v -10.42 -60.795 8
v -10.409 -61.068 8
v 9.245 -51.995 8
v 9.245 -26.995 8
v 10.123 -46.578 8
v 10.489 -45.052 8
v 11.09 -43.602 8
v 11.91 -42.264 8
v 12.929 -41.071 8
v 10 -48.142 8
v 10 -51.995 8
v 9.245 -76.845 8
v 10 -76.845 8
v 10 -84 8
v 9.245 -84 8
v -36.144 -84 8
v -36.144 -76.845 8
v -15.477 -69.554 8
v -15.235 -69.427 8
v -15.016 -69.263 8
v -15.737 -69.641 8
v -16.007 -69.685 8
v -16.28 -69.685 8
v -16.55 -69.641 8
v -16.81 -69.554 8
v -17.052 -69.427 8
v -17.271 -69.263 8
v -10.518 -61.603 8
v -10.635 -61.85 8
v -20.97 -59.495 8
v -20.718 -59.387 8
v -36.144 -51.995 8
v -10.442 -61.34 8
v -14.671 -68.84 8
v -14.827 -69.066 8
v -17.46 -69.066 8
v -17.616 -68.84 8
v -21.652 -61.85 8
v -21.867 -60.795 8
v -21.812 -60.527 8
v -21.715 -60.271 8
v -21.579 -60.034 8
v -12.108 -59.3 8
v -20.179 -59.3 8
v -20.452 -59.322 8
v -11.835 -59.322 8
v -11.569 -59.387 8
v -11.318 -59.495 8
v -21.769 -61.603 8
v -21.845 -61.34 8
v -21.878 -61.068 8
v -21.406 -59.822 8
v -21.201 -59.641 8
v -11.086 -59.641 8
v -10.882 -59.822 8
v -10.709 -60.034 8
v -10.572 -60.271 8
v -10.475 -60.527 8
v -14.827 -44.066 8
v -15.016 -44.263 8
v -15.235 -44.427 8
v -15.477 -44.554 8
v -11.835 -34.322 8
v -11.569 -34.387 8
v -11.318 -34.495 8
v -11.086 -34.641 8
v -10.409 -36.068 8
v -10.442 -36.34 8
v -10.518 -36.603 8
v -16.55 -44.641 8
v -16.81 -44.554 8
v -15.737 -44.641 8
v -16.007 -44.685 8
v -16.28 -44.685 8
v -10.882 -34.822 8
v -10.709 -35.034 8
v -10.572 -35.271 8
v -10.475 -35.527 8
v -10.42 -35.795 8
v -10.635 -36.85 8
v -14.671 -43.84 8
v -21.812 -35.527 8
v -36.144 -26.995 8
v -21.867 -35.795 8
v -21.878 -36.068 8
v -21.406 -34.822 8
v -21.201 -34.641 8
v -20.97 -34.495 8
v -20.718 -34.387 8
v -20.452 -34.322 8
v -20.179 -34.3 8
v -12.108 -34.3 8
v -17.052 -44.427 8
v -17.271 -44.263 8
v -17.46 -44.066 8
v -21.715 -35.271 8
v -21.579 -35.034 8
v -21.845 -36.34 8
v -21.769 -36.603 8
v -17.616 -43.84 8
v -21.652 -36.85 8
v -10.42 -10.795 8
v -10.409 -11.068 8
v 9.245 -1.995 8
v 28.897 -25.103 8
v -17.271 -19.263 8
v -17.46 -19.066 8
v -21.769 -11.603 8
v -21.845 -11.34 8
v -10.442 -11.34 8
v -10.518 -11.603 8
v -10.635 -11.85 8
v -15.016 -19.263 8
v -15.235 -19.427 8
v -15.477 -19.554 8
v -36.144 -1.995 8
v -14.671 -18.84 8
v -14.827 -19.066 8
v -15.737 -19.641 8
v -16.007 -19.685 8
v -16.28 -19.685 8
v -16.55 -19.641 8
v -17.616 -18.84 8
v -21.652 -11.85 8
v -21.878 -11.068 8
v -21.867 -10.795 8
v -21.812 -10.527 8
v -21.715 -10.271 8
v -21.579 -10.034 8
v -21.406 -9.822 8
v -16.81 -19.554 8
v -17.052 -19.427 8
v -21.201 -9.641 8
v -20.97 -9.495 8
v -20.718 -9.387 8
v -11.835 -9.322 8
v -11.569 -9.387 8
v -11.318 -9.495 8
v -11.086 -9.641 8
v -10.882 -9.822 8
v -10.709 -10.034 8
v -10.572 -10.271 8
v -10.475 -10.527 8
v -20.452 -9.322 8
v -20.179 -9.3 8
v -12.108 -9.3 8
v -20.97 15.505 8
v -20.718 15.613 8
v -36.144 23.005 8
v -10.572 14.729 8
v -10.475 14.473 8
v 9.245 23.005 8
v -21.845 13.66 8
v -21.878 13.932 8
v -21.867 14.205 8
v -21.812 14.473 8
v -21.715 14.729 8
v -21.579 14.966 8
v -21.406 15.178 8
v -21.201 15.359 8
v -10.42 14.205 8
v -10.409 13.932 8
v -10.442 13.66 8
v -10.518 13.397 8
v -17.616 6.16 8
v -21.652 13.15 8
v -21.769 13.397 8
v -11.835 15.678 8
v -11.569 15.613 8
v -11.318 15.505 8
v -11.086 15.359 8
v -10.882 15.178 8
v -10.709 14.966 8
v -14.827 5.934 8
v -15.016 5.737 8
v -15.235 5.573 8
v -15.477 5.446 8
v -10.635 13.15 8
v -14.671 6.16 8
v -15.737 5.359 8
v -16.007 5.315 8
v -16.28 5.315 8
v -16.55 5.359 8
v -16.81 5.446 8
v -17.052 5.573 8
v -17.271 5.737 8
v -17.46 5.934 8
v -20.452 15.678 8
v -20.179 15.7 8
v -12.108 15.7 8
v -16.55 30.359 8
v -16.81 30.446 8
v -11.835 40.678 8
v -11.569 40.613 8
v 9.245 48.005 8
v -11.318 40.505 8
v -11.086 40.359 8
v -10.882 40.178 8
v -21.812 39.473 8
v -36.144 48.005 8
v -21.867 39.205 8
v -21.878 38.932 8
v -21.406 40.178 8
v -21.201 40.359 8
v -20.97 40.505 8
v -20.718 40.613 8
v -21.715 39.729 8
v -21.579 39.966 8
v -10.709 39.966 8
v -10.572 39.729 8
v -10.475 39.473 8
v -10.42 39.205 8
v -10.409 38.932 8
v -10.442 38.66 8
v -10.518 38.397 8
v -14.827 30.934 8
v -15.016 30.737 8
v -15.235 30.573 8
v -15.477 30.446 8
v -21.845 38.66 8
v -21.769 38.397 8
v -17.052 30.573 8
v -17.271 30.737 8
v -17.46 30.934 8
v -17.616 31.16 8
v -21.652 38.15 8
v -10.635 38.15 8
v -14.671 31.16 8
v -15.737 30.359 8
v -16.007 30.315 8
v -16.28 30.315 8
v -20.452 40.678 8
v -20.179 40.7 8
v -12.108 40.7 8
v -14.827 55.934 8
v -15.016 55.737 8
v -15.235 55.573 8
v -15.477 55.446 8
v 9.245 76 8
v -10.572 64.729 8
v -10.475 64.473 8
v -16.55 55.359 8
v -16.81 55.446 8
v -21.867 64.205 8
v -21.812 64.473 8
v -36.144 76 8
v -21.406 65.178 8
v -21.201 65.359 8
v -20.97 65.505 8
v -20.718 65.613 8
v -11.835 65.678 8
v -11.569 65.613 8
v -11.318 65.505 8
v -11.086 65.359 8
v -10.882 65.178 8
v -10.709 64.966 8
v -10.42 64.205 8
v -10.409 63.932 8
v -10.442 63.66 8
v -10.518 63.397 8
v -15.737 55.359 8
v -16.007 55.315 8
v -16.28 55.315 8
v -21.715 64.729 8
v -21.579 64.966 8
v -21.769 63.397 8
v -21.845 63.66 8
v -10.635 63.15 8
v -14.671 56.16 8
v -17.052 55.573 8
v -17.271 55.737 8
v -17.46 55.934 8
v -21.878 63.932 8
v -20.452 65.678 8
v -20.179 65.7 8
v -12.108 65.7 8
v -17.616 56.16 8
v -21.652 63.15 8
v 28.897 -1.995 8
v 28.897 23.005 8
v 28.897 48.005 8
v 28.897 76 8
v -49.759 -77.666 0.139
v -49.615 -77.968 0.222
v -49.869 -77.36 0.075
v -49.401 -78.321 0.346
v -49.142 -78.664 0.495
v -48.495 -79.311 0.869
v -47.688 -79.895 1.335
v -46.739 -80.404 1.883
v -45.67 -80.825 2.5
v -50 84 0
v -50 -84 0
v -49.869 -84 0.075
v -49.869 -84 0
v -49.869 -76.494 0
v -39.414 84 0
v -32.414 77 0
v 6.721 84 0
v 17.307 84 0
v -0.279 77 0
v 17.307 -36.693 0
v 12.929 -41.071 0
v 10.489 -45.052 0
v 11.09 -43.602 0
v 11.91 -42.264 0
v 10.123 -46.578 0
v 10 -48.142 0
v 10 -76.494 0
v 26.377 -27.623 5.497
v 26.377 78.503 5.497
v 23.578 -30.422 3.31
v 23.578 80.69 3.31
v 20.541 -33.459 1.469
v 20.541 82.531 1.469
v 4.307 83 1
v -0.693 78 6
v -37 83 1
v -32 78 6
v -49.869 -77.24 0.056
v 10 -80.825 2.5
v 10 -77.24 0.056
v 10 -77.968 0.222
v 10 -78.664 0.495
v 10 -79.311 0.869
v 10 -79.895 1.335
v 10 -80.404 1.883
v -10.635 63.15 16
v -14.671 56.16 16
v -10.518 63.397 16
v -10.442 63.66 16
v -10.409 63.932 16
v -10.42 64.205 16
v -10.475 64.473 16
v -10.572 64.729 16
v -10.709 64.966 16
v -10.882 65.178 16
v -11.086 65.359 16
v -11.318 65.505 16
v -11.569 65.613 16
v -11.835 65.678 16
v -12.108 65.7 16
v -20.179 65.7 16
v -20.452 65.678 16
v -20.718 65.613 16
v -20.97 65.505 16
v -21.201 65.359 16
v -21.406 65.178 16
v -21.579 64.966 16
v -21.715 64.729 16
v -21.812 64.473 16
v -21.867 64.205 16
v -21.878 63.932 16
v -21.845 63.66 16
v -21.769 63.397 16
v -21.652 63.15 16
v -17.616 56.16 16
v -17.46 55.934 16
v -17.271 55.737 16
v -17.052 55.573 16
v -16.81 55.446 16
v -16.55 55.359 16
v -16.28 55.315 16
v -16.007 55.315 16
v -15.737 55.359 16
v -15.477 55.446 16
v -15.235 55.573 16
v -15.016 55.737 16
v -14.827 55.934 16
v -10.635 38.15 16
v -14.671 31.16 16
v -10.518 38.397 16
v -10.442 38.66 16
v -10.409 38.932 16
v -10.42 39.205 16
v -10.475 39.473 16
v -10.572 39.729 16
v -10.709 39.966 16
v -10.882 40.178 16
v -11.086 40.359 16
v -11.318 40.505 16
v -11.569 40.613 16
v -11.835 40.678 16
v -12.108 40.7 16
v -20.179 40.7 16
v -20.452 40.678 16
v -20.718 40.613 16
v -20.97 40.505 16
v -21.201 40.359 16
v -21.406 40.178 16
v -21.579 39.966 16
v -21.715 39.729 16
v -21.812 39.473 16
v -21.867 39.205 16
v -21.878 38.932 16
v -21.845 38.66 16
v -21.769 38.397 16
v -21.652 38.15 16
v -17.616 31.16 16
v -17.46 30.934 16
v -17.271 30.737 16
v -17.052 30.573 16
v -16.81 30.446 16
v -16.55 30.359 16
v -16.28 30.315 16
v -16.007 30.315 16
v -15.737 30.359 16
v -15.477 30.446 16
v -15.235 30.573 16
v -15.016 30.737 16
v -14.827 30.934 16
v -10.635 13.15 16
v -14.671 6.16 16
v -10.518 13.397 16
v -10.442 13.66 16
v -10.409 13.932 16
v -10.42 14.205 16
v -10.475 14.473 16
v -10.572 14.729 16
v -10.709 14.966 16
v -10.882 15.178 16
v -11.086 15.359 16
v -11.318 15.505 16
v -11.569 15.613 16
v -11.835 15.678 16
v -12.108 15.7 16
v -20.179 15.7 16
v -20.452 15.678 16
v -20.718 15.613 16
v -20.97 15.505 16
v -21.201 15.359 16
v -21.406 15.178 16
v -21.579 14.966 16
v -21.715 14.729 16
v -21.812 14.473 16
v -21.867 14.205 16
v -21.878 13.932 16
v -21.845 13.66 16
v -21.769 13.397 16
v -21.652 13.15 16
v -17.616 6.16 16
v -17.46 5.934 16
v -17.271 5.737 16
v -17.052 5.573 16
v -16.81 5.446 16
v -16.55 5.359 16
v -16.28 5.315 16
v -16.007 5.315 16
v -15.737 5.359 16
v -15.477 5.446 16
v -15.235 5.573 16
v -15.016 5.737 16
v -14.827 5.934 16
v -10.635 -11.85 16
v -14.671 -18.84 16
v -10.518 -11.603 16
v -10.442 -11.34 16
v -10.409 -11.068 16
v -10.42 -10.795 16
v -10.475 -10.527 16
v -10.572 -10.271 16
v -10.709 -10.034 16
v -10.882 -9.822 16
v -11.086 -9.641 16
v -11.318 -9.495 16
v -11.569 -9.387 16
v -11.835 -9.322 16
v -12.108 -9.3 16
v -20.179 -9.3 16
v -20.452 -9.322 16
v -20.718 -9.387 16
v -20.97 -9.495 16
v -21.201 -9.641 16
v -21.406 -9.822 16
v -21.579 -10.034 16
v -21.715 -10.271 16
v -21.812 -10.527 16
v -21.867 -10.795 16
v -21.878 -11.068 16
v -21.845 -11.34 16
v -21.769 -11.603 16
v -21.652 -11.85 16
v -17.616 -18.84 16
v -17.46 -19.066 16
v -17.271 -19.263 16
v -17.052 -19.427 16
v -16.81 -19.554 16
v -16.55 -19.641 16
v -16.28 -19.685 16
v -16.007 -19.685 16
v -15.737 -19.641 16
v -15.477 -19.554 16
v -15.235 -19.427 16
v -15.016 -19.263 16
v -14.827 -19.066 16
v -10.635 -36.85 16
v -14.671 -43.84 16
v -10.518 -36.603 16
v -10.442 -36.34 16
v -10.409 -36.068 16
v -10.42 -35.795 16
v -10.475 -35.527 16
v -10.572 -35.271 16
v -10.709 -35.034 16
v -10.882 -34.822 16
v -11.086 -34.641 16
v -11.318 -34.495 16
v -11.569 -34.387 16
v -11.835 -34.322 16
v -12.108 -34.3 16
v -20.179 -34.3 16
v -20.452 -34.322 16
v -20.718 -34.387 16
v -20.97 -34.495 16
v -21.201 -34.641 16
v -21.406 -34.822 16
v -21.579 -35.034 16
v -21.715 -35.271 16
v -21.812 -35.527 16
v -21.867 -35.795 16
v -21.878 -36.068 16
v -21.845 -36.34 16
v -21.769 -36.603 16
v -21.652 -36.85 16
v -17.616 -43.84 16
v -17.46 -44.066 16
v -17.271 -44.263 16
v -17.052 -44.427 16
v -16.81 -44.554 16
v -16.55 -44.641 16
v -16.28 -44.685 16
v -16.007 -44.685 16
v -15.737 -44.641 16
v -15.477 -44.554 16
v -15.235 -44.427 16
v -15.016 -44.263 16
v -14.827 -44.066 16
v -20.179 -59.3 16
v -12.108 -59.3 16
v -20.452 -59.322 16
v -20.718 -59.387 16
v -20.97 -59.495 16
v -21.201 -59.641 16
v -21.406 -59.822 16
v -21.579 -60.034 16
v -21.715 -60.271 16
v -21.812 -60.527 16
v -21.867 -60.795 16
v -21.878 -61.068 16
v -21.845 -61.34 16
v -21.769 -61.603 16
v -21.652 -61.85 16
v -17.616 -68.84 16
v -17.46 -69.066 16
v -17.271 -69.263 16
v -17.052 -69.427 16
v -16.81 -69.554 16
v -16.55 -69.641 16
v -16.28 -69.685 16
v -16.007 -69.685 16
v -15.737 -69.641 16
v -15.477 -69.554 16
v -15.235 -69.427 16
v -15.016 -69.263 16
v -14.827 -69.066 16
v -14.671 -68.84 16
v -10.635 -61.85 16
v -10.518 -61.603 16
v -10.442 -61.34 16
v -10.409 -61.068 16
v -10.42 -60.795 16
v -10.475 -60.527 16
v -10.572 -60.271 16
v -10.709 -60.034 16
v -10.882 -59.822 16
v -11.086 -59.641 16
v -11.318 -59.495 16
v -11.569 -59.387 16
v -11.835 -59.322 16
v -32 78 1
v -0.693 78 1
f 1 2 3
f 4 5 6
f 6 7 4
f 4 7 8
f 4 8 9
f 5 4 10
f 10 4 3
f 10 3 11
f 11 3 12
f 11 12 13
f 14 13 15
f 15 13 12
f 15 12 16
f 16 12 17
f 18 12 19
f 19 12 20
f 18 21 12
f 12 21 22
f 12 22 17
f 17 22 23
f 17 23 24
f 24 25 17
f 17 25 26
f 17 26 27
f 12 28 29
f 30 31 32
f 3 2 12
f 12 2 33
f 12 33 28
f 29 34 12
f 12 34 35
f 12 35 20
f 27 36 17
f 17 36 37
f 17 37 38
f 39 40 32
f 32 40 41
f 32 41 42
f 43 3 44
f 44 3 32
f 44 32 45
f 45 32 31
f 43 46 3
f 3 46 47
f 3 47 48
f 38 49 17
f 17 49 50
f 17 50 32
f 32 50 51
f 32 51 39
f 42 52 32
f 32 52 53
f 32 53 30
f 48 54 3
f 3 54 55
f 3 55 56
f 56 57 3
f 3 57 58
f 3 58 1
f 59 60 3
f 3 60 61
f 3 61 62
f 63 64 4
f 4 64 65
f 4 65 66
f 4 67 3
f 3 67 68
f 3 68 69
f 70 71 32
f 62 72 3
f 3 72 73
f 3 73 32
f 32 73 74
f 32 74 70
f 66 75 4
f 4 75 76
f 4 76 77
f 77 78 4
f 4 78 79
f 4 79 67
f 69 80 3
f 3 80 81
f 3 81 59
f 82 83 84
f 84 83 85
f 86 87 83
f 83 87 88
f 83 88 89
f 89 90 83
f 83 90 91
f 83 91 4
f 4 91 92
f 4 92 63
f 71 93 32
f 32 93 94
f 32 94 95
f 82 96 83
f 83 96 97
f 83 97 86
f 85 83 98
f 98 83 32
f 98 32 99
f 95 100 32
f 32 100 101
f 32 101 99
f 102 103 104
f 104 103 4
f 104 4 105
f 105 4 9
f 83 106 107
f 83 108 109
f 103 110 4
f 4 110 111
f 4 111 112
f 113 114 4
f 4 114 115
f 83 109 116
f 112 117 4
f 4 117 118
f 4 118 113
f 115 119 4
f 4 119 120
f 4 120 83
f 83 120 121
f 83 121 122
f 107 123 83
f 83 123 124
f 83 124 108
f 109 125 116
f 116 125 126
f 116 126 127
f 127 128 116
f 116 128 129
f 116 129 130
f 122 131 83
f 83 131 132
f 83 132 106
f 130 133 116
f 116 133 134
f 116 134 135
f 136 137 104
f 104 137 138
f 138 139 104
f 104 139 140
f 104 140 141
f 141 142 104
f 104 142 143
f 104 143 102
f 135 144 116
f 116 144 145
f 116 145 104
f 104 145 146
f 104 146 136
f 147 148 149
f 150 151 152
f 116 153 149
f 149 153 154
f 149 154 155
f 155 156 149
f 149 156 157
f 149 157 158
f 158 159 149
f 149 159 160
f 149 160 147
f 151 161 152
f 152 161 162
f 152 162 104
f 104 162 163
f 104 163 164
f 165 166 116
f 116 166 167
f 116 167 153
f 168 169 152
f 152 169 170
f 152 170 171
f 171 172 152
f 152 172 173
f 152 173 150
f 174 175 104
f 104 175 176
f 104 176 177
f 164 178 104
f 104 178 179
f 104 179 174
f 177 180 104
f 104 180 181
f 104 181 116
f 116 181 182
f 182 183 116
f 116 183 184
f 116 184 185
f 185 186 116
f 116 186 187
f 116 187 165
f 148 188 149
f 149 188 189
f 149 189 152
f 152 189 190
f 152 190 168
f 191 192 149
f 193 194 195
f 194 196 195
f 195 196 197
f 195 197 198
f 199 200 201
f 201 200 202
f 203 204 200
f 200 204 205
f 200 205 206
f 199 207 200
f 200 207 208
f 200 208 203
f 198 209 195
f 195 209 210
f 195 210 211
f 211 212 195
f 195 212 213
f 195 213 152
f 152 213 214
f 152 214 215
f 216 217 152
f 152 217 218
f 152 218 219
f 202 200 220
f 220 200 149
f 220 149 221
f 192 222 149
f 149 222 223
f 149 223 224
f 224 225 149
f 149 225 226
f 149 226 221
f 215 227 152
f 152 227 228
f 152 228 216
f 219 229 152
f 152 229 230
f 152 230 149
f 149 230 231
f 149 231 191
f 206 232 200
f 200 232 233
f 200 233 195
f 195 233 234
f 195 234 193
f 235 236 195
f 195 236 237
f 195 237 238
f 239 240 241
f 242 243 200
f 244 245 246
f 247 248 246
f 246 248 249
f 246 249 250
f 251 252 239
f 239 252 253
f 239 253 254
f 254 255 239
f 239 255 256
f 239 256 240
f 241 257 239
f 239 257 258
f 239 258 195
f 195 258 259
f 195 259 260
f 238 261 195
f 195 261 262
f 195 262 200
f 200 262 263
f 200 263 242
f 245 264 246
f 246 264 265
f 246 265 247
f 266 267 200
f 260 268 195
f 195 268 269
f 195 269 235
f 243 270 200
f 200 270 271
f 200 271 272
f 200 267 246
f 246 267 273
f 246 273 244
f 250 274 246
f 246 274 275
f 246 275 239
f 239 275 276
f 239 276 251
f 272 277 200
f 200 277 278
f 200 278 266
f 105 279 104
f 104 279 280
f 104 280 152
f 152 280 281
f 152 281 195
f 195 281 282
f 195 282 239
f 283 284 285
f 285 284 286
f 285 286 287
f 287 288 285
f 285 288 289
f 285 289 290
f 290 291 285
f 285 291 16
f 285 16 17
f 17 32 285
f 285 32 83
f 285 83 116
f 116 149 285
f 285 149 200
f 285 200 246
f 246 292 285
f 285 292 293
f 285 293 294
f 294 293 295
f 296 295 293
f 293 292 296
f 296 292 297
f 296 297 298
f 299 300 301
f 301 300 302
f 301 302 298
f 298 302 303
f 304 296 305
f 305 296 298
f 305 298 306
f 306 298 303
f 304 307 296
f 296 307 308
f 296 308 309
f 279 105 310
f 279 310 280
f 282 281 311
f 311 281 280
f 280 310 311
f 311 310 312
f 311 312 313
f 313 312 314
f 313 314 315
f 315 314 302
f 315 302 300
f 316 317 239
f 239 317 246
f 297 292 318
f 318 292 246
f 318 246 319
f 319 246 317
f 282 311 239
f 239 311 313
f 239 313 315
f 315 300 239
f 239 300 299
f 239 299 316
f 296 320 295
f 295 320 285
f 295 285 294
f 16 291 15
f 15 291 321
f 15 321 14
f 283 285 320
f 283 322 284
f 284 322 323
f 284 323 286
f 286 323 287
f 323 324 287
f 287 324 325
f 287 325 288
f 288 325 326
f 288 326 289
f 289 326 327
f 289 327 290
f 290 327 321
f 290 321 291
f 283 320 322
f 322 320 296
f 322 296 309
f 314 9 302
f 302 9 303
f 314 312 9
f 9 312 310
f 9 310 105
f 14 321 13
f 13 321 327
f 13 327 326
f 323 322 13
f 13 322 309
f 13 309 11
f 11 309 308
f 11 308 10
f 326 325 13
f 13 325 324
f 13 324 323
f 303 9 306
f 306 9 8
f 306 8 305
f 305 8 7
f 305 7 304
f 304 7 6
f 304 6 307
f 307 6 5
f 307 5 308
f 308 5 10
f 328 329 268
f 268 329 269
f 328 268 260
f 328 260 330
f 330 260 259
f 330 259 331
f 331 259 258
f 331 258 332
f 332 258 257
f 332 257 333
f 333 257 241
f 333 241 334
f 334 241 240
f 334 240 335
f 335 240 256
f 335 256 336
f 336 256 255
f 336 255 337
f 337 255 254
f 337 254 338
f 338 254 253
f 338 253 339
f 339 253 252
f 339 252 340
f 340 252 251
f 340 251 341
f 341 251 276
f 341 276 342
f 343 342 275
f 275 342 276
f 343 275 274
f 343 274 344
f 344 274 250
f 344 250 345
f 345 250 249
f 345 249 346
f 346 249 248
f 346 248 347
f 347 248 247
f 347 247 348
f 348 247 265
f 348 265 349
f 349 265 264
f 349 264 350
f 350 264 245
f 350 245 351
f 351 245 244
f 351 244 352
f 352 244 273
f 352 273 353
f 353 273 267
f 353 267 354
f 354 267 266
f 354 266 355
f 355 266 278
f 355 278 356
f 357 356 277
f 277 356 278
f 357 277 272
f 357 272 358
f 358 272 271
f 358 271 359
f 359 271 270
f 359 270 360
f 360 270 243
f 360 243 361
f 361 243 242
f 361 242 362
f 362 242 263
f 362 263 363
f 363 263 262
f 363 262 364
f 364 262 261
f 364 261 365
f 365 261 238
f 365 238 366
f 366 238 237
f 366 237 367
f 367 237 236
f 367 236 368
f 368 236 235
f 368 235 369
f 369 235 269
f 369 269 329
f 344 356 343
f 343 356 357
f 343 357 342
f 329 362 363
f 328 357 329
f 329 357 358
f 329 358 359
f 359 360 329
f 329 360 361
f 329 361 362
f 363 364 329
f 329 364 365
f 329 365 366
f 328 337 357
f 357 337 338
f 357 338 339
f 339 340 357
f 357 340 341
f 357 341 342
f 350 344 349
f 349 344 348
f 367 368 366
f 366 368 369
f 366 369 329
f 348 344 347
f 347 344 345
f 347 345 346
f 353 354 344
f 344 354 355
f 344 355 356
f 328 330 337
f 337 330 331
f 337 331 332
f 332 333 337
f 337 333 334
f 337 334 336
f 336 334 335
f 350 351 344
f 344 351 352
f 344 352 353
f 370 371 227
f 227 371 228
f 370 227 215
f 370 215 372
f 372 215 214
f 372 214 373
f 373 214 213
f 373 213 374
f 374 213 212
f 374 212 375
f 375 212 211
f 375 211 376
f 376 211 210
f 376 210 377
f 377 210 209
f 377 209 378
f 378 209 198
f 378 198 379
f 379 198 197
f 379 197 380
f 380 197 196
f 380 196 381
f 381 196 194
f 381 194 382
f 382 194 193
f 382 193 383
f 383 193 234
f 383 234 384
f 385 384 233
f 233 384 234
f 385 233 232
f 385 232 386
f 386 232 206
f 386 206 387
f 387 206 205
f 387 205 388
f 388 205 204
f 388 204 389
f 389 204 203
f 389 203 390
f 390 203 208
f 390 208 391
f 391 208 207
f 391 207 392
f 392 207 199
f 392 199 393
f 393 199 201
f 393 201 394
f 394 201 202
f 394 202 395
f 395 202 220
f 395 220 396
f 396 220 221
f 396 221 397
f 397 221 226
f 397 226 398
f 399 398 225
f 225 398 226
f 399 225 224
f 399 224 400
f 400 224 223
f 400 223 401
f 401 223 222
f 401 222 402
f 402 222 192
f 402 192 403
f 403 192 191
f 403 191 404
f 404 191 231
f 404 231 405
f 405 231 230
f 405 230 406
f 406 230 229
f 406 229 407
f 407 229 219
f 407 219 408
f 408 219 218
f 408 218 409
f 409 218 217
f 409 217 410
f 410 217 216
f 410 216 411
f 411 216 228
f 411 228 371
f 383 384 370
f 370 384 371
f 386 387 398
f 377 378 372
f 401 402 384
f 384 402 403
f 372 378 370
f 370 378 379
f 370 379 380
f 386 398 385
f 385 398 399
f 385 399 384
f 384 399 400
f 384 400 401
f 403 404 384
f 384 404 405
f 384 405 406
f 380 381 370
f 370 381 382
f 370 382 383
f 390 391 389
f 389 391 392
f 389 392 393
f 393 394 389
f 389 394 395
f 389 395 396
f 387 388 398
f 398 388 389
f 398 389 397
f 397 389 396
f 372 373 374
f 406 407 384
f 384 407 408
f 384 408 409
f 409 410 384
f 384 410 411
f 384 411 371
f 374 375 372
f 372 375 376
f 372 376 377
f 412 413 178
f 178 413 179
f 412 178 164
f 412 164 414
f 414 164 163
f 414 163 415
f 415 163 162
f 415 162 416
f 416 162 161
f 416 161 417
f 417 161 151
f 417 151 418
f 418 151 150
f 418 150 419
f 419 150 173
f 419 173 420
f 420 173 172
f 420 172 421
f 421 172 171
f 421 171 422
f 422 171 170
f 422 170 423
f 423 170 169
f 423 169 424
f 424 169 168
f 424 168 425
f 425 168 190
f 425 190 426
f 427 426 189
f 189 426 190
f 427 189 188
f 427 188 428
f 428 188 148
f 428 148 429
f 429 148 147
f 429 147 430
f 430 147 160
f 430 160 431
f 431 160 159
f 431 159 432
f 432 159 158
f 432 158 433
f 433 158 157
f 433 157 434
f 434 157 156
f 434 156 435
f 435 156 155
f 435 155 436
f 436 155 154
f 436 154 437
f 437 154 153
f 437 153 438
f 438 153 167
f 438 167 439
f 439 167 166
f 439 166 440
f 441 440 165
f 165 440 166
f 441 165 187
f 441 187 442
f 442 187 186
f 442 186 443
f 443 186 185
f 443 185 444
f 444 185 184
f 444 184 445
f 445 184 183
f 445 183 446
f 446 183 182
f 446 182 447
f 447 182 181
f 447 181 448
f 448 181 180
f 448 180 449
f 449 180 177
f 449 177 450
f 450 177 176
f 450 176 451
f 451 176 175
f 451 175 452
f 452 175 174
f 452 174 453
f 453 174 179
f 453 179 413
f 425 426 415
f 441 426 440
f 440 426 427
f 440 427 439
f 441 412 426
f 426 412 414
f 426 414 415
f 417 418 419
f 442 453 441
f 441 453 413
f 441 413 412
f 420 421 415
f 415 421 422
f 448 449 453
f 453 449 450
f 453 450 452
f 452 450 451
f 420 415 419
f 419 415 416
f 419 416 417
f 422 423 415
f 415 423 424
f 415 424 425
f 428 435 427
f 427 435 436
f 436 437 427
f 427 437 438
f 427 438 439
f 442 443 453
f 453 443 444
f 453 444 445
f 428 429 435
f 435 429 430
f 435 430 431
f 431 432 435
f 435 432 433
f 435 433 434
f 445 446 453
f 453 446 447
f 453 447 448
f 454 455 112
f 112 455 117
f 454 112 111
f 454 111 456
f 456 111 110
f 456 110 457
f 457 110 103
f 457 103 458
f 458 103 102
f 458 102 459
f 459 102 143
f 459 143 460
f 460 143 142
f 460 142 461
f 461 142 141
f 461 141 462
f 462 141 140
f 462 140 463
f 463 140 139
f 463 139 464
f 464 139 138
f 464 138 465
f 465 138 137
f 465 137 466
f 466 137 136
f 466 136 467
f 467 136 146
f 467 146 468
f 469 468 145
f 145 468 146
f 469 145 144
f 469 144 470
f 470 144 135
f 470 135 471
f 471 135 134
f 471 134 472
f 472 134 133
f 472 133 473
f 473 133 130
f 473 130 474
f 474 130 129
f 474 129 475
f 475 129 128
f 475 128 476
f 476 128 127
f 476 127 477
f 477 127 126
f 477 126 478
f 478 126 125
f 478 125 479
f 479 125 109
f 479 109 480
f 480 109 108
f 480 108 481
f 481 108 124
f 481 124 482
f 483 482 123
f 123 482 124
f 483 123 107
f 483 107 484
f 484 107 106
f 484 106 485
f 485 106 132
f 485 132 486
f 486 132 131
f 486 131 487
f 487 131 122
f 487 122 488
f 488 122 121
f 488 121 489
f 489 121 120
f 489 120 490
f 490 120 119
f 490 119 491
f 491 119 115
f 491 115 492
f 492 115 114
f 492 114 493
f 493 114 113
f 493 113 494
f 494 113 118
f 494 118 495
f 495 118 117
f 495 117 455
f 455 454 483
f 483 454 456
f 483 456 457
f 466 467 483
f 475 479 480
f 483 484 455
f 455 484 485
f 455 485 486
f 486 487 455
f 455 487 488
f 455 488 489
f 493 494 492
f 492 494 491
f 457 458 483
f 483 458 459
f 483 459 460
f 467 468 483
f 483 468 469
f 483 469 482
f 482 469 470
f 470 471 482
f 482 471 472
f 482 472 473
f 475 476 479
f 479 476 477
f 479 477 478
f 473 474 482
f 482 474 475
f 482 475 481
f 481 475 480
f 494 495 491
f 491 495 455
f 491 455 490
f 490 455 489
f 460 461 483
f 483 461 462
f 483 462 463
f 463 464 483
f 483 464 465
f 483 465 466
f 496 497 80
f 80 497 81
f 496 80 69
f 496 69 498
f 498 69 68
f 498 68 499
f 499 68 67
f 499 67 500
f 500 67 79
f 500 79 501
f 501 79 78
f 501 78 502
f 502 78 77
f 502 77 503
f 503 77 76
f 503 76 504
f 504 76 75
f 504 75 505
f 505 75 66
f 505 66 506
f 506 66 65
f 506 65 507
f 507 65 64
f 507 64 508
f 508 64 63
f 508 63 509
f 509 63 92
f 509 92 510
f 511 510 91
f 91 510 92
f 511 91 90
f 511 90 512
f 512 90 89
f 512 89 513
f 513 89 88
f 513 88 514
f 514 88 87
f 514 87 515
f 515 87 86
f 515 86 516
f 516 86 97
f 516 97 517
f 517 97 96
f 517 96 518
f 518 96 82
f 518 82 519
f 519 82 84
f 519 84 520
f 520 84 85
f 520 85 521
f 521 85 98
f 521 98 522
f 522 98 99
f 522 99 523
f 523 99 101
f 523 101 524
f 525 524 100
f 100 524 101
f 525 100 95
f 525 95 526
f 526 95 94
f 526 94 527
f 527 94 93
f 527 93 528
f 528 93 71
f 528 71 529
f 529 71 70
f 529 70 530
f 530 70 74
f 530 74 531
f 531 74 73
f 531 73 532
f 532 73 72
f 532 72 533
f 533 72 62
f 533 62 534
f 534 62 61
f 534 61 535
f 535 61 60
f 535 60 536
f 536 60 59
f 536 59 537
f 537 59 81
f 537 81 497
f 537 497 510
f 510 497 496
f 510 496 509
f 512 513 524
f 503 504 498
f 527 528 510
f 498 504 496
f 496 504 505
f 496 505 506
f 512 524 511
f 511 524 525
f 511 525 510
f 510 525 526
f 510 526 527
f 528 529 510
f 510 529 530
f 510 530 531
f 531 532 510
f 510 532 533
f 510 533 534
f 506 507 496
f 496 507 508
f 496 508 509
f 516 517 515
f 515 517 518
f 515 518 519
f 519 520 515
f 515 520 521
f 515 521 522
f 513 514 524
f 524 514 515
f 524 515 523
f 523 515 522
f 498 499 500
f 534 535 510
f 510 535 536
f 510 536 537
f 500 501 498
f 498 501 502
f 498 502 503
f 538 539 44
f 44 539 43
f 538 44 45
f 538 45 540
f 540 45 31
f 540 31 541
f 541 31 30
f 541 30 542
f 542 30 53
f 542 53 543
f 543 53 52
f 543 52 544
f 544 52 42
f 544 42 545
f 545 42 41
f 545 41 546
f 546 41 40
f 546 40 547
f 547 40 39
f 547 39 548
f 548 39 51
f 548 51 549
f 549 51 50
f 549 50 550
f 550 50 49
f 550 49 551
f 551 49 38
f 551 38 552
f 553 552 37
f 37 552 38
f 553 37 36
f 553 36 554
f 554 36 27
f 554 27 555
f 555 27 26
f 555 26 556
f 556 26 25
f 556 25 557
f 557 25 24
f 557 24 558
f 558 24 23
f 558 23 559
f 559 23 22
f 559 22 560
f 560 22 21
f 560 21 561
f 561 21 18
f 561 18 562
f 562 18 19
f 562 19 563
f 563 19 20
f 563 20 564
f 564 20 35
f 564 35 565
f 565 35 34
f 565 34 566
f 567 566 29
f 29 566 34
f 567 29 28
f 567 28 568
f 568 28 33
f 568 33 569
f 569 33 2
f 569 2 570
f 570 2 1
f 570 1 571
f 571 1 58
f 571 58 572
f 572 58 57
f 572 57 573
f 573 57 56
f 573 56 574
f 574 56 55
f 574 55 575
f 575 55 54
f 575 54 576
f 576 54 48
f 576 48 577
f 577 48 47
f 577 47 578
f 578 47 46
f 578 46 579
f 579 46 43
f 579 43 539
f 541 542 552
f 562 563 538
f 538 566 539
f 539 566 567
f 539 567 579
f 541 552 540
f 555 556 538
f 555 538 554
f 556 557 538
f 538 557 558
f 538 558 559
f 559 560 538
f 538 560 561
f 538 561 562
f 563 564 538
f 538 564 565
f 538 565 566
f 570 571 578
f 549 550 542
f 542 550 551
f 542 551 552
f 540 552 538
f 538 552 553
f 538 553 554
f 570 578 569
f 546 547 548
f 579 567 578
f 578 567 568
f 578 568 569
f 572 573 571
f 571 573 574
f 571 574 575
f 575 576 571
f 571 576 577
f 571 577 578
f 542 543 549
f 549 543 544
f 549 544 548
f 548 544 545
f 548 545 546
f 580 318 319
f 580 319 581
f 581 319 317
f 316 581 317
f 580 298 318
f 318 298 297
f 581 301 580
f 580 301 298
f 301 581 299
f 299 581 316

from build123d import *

# Parameters (mm, degrees)
SKETCH_1_W          = 100
SKETCH_1_H          = 168
EXTRUDE_1_DEPTH     = 8
SKETCH_4_W          = 219.714234424
SKETCH_4_H          = 60.92406831
CUT_EXTRUDE_2_DEPTH = 8
SKETCH_5_W          = 131.187185814
SKETCH_5_H          = 64.749040209
CUT_EXTRUDE_3_DEPTH = 28
CUT_EXTRUDE_4_DEPTH = 198
SKETCH_7_W          = 88.901088493
SKETCH_7_H          = 24.075683618
CUT_EXTRUDE_5_DEPTH = 198
FILLET_2_R          = 5
CUT_EXTRUDE_6_DEPTH = 20
FILLET_3_R          = 10
EXTRUDE_2_DEPTH     = 8
CUT_EXTRUDE_7_DEPTH = 10
CHAMFER_1_SIZE      = 1


with BuildPart() as part:
    # 草图1 → 凸台-拉伸1 (new body)
    with BuildSketch(Plane.XY):
        Rectangle(SKETCH_1_W, SKETCH_1_H)
    extrude(amount=EXTRUDE_1_DEPTH)

    # 草图4 → 切除-拉伸2 (cut)
    with BuildSketch(Plane(origin=(-12.5, 0, 21.650635095), x_dir=(0, -1, 0), z_dir=(-0.499999999999998, 0, 0.8660254037844398))):
        with Locations((1.453456898, -25.633998951)):
            Rectangle(SKETCH_4_W, SKETCH_4_H)
    extrude(amount=CUT_EXTRUDE_2_DEPTH, mode=Mode.SUBTRACT)

    # 草图5 → 切除-拉伸3 (cut)
    with BuildSketch(Plane(origin=(0, 42, 42), x_dir=(-1, 0, 0), z_dir=(0, 0.7071067811865464, 0.7071067811865488))):
        with Locations((-5.06731619, -49.688146971)):
            Rectangle(SKETCH_5_W, SKETCH_5_H)
    extrude(amount=CUT_EXTRUDE_3_DEPTH, mode=Mode.SUBTRACT)

    # 草图6 → 切除-拉伸4 (cut)
    with BuildSketch(Plane.XZ.offset(84)):
        with BuildLine():
            Line((17.306736075, 0), (50, 0))
            Line((50, 0), (50, 8))
            Line((50, 8), (28.897086236, 8))
            ThreePointArc((28.897086236, 8), (23.578001039, 3.310243942), (17.306736075, 0))
        make_face()
    extrude(amount=-CUT_EXTRUDE_4_DEPTH, mode=Mode.SUBTRACT)

    # 草图7 → 切除-拉伸5 (cut)
    with BuildSketch(Plane(origin=(0, -59.535898385, -34.373066959), x_dir=(1, 0, 0), z_dir=(0, -0.866025403784438, -0.500000000000001))):
        with Locations((-5.418701979, 40.753668269)):
            Rectangle(SKETCH_7_W, SKETCH_7_H)
    extrude(amount=CUT_EXTRUDE_5_DEPTH, mode=Mode.SUBTRACT)

    # 圆角2
    # the kernel refuses this fillet: 5 mm, written as the material it takes off along each edge
    with BuildSketch(Plane(origin=(24.52361444, -79.381197846, 0), x_dir=(0, 1, 0), z_dir=(-1, 0, 0))) as fillet_2_piece_1:
        with BuildLine():
            CenterArc((FILLET_2_R * 0.57735026919, -FILLET_2_R), FILLET_2_R, 90, 60)
            Line((-FILLET_2_R * 0.288675134595, -FILLET_2_R * 0.5), (0, 0))
            Line((0, 0), (FILLET_2_R * 0.57735026919, 0))
        make_face()
    extrude(amount=74.392860666, mode=Mode.SUBTRACT)

    # 草图8 → 切除-拉伸6 (cut)
    with BuildSketch(Plane(origin=(0, 0, 0), x_dir=(-1, 0, 0), z_dir=(0, 0, -1))):
        Polygon((-60, 6), (-10, -44), (-10, -84), (0, -94), (-20, -94), (-60, -94), align=None)
    extrude(amount=-CUT_EXTRUDE_6_DEPTH, mode=Mode.SUBTRACT)

    # 圆角3
    fillet_3_edges = [part.edges().sort_by_distance(p)[0] for p in [
        (10, -44, 4),
    ]]
    fillet(fillet_3_edges, radius=FILLET_3_R)

    # 草图9 → 凸台-拉伸2 (add)
    with BuildSketch(Plane.XY.offset(8)):
        with BuildLine():
            ThreePointArc((-17.615836726, 56.159618943), (-16.143593539, 55.309618943), (-14.671350353, 56.159618943))
            Line((-14.671350353, 56.159618943), (-10.635451968, 63.15))
            ThreePointArc((-10.635451968, 63.15), (-10.635451968, 64.85), (-12.107695155, 65.7))
            Line((-12.107695155, 65.7), (-20.179491924, 65.7))
            ThreePointArc((-20.179491924, 65.7), (-21.651735111, 64.85), (-21.651735111, 63.15))
            Line((-21.651735111, 63.15), (-17.615836726, 56.159618943))
        make_face()
        with BuildLine():
            ThreePointArc((-17.615836726, 31.159618943), (-16.143593539, 30.309618943), (-14.671350353, 31.159618943))
            Line((-14.671350353, 31.159618943), (-10.635451968, 38.15))
            ThreePointArc((-10.635451968, 38.15), (-10.635451968, 39.85), (-12.107695155, 40.7))
            Line((-12.107695155, 40.7), (-20.179491924, 40.7))
            ThreePointArc((-20.179491924, 40.7), (-21.651735111, 39.85), (-21.651735111, 38.15))
            Line((-21.651735111, 38.15), (-17.615836726, 31.159618943))
        make_face()
        with BuildLine():
            ThreePointArc((-17.615836726, 6.159618943), (-16.143593539, 5.309618943), (-14.671350353, 6.159618943))
            Line((-14.671350353, 6.159618943), (-10.635451968, 13.15))
            ThreePointArc((-10.635451968, 13.15), (-10.635451968, 14.85), (-12.107695155, 15.7))
            Line((-12.107695155, 15.7), (-20.179491924, 15.7))
            ThreePointArc((-20.179491924, 15.7), (-21.651735111, 14.85), (-21.651735111, 13.15))
            Line((-21.651735111, 13.15), (-17.615836726, 6.159618943))
        make_face()
        with BuildLine():
            ThreePointArc((-17.615836726, -18.840381057), (-16.143593539, -19.690381057), (-14.671350353, -18.840381057))
            Line((-14.671350353, -18.840381057), (-10.635451968, -11.85))
            ThreePointArc((-10.635451968, -11.85), (-10.635451968, -10.15), (-12.107695155, -9.3))
            Line((-12.107695155, -9.3), (-20.179491924, -9.3))
            ThreePointArc((-20.179491924, -9.3), (-21.651735111, -10.15), (-21.651735111, -11.85))
            Line((-21.651735111, -11.85), (-17.615836726, -18.840381057))
        make_face()
        with BuildLine():
            ThreePointArc((-17.615836726, -43.840381057), (-16.143593539, -44.690381057), (-14.671350353, -43.840381057))
            Line((-14.671350353, -43.840381057), (-10.635451968, -36.85))
            ThreePointArc((-10.635451968, -36.85), (-10.635451968, -35.15), (-12.107695155, -34.3))
            Line((-12.107695155, -34.3), (-20.179491924, -34.3))
            ThreePointArc((-20.179491924, -34.3), (-21.651735111, -35.15), (-21.651735111, -36.85))
            Line((-21.651735111, -36.85), (-17.615836726, -43.840381057))
        make_face()
        with BuildLine():
            ThreePointArc((-10.635451968, -61.85), (-10.635451968, -60.15), (-12.107695155, -59.3))
            Line((-12.107695155, -59.3), (-20.179491924, -59.3))
            ThreePointArc((-20.179491924, -59.3), (-21.651735111, -60.15), (-21.651735111, -61.85))
            Line((-21.651735111, -61.85), (-17.615836726, -68.840381057))
            ThreePointArc((-17.615836726, -68.840381057), (-16.143593539, -69.690381057), (-14.671350353, -68.840381057))
            Line((-14.671350353, -68.840381057), (-10.635451968, -61.85))
        make_face()
    extrude(amount=EXTRUDE_2_DEPTH)

    # 草图10 → 切除-拉伸7 (cut)
    with BuildSketch(Plane(origin=(0, 0, 0), x_dir=(-1, 0, 0), z_dir=(0, 0, -1))):
        Polygon((-5.306736075, 84), (0.693263925, 78), (32, 78), (38, 84), align=None)
    extrude(amount=-CUT_EXTRUDE_7_DEPTH, mode=Mode.SUBTRACT)

    # 倒角1
    chamfer_1_edges = [part.edges().sort_by_distance(p)[0] for p in [
        (2.306736075, 81, 0),
        (-16.346631963, 78, 0),
        (-35, 81, 0),
    ]]
    chamfer(chamfer_1_edges, length=CHAMFER_1_SIZE)


solid = part.part
